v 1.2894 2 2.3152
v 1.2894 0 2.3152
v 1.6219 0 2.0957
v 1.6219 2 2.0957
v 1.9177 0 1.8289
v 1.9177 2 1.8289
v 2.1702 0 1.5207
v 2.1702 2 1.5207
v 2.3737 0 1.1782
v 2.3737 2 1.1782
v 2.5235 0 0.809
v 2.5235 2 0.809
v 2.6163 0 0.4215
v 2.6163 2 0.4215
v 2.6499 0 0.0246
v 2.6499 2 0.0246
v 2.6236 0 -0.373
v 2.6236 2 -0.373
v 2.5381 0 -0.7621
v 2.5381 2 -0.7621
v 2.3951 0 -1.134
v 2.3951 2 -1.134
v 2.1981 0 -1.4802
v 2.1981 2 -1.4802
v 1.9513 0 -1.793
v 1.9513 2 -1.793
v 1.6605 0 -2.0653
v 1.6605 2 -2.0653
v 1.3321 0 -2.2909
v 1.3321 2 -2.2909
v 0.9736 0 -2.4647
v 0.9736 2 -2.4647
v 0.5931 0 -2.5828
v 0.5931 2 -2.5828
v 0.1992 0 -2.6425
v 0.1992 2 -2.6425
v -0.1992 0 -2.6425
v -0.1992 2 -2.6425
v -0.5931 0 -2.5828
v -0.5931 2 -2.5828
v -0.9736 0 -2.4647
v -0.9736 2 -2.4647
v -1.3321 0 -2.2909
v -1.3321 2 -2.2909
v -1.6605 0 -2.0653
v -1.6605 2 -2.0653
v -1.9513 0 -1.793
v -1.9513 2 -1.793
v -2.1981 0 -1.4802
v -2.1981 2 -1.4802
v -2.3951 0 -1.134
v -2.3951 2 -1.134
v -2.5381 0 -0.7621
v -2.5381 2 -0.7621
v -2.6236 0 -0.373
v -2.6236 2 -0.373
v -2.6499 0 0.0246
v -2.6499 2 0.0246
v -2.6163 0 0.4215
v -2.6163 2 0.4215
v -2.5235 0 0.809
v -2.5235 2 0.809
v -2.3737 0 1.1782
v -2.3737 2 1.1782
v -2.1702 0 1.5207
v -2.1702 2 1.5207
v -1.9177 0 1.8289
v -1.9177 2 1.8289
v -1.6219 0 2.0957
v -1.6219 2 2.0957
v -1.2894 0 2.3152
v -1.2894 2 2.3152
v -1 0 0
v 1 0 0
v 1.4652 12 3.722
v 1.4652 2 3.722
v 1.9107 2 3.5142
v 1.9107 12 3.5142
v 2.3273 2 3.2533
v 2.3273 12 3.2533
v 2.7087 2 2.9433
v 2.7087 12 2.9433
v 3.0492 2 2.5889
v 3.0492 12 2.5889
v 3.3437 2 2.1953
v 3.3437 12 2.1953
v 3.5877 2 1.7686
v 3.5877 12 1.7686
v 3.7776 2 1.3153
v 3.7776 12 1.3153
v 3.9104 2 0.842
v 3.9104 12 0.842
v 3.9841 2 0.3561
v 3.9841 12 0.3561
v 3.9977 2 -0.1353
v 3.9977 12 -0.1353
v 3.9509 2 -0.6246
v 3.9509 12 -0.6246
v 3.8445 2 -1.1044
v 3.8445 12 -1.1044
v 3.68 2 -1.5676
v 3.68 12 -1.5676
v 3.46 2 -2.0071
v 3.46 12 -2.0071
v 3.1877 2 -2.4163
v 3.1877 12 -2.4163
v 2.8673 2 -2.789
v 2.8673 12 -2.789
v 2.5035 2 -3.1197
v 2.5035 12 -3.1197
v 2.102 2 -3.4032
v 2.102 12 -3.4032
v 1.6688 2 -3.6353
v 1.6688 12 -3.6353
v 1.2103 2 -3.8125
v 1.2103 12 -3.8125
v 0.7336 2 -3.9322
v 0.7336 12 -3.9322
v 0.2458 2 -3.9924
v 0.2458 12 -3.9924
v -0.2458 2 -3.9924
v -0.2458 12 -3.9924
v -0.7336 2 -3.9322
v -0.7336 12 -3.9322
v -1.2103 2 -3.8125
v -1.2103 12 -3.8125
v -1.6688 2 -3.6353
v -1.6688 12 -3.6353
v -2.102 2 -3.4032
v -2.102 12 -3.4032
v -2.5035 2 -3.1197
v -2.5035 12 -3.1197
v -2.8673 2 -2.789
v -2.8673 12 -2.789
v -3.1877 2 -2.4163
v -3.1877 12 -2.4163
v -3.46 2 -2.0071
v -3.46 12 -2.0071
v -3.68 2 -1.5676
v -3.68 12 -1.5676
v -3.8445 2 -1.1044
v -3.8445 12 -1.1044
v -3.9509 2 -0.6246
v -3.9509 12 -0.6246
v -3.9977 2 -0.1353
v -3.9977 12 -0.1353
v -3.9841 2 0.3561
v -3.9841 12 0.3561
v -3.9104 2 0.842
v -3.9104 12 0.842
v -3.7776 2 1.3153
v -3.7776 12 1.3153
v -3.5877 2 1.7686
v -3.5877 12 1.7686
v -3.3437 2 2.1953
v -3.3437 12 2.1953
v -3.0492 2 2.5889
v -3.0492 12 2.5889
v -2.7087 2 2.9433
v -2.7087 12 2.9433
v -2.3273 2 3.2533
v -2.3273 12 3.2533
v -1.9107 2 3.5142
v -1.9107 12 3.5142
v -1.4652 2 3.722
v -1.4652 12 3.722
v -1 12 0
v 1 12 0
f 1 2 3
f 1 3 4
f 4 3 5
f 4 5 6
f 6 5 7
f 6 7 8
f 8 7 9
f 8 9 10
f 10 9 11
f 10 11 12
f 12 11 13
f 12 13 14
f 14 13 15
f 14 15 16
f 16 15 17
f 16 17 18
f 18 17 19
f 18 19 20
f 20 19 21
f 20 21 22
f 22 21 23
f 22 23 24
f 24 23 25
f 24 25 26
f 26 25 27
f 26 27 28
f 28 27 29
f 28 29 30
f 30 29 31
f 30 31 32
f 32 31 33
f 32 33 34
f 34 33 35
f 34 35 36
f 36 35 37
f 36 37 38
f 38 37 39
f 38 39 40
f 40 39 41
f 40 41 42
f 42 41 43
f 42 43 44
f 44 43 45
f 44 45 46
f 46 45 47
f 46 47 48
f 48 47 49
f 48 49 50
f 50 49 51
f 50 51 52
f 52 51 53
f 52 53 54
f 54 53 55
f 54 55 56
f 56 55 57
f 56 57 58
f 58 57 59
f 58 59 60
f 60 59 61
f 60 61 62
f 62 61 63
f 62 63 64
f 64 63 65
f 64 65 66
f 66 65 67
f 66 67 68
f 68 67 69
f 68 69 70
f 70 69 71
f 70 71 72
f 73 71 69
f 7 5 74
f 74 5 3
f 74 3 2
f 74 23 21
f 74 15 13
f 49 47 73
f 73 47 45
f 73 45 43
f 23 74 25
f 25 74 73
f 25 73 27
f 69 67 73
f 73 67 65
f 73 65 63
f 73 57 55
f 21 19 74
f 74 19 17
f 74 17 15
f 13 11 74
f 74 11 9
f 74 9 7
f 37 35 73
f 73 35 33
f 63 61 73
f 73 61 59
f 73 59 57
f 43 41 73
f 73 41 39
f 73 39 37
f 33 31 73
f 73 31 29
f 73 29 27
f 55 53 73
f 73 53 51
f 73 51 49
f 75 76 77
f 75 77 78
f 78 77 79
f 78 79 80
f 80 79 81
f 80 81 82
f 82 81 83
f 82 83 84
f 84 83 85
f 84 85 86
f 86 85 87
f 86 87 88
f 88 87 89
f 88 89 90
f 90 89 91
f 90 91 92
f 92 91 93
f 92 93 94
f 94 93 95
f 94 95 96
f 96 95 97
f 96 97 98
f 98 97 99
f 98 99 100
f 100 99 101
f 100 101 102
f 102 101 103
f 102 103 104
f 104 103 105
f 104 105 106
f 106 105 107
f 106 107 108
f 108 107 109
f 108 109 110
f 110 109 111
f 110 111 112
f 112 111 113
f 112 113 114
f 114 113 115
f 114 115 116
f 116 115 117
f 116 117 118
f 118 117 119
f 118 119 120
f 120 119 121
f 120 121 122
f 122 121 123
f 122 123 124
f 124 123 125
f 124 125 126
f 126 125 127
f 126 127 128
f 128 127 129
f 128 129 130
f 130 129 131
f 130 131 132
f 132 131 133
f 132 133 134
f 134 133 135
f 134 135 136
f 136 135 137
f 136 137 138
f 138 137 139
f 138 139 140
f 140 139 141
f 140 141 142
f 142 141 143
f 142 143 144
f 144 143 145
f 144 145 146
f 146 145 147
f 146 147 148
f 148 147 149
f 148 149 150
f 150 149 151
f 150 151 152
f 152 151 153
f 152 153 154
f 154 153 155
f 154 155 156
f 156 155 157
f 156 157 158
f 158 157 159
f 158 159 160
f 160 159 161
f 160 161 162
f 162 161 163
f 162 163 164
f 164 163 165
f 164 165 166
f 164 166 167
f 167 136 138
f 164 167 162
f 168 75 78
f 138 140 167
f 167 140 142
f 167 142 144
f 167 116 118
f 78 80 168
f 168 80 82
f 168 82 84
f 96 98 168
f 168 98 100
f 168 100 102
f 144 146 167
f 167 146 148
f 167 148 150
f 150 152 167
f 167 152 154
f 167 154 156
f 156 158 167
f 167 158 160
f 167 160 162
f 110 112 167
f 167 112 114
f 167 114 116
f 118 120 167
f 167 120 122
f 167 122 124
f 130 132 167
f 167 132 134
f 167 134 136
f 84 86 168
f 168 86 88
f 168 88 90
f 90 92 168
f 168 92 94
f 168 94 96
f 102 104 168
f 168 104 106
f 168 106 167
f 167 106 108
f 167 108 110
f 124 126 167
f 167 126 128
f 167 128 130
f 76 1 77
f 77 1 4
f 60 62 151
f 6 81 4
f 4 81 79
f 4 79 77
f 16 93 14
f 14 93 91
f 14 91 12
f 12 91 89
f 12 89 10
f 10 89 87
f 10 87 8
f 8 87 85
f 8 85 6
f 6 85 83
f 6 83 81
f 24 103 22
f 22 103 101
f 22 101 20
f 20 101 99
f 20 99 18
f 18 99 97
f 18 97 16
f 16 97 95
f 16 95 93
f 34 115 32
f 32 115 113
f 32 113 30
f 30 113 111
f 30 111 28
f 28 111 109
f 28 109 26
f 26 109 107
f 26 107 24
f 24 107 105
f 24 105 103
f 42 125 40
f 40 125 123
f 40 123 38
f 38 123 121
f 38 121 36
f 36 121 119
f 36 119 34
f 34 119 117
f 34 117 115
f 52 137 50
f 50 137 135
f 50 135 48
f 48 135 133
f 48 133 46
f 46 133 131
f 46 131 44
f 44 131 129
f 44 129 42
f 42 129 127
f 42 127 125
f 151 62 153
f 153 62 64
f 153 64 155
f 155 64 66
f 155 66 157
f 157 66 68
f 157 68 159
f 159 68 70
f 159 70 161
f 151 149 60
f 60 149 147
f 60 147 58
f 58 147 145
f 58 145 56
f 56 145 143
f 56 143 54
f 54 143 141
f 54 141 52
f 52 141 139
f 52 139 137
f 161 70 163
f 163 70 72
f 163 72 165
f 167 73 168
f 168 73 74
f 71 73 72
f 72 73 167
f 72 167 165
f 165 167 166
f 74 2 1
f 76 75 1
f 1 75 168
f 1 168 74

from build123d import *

# Parameters (mm, degrees)
SKETCH2_R           = 2.65
BOSS_EXTRUDE1_DEPTH = 2
SKETCH3_R           = 4
BOSS_EXTRUDE2_DEPTH = 10


with BuildPart() as part:
    # Sketch2 → Boss-Extrude1 (new body)
    with BuildSketch(Plane(origin=(0, 0, 0), x_dir=(1, 0, 0), z_dir=(0, 1, 0))):
        with Locations(Location((0, 0, 0), (0, 0, 270))):
            Circle(SKETCH2_R)
    extrude(amount=BOSS_EXTRUDE1_DEPTH)

    # Sketch3 → Boss-Extrude2 (add)
    with BuildSketch(Plane(origin=(0, 2, 0), x_dir=(1, 0, 0), z_dir=(0, 1, 0))):
        with Locations(Location((0, 0, 0), (0, 0, 270))):
            Circle(SKETCH3_R)
    extrude(amount=BOSS_EXTRUDE2_DEPTH)

    # Sketch4 → Cut-Loft1 section 0
    with BuildSketch(Plane.XY.offset(4)):
        with BuildLine():
            Line((-1.5, -12.39924767), (1.5, -12.39924767))
            Line((1.5, -12.39924767), (1.5, 12.39924767))
            Line((1.5, 12.39924767), (-1.5, 12.39924767))
            Line((-1.5, 12.39924767), (-1.5, -12.39924767))
        make_face()
    # Sketch5 → Cut-Loft1 section 1
    with BuildSketch(Plane.XY):
        with BuildLine():
            Line((-1, -12.21483131), (1, -12.21483131))
            Line((1, -12.21483131), (1, 12.21483131))
            Line((1, 12.21483131), (-1, 12.21483131))
            Line((-1, 12.21483131), (-1, -12.21483131))
        make_face()
    loft(mode=Mode.SUBTRACT)


solid = part.part
